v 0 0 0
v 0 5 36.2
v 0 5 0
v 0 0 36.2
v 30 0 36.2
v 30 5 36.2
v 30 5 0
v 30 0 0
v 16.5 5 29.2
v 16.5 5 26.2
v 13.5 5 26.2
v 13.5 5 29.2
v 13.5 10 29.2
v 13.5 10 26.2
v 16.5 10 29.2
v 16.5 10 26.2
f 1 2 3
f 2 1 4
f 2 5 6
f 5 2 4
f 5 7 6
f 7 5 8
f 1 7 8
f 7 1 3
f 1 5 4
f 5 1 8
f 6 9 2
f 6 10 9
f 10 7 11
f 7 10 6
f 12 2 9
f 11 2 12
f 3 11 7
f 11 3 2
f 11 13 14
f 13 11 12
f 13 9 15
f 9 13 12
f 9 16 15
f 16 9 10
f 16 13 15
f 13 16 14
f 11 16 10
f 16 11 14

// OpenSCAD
// file: config.scad
// general
part_width = 5;

entire_length = 100;

// parameters
arm_width = 27;
arm_inside_width =22;
arm_length = 100-arm_width; //length of the extension
arm_height = 10;

// space before and after
space_after = arm_length * 0.6; // btwn holder and axle
axle_width = 3;
axle_length = 15;

// sidebar
sidebar_bottom = entire_length - (arm_width + space_after + axle_width);
sidebar_height = sidebar_bottom + 10; // 10: is a constant
sidebar_width = 30;

holder_length = 5;

// torsion
torsion_diameter = 1;
torsion_rings = 4;
torsion_thickness = 1;
torsion_depth = part_width;
// main file
// sidebar
// Rafi Khan

include <config.scad>;

union() {

	// side
	cube([sidebar_width, part_width, sidebar_height]);

	//holder
	translate([sidebar_width/2 - axle_width/2, part_width, sidebar_bottom])
	cube([axle_width, holder_length, axle_width]);

}
